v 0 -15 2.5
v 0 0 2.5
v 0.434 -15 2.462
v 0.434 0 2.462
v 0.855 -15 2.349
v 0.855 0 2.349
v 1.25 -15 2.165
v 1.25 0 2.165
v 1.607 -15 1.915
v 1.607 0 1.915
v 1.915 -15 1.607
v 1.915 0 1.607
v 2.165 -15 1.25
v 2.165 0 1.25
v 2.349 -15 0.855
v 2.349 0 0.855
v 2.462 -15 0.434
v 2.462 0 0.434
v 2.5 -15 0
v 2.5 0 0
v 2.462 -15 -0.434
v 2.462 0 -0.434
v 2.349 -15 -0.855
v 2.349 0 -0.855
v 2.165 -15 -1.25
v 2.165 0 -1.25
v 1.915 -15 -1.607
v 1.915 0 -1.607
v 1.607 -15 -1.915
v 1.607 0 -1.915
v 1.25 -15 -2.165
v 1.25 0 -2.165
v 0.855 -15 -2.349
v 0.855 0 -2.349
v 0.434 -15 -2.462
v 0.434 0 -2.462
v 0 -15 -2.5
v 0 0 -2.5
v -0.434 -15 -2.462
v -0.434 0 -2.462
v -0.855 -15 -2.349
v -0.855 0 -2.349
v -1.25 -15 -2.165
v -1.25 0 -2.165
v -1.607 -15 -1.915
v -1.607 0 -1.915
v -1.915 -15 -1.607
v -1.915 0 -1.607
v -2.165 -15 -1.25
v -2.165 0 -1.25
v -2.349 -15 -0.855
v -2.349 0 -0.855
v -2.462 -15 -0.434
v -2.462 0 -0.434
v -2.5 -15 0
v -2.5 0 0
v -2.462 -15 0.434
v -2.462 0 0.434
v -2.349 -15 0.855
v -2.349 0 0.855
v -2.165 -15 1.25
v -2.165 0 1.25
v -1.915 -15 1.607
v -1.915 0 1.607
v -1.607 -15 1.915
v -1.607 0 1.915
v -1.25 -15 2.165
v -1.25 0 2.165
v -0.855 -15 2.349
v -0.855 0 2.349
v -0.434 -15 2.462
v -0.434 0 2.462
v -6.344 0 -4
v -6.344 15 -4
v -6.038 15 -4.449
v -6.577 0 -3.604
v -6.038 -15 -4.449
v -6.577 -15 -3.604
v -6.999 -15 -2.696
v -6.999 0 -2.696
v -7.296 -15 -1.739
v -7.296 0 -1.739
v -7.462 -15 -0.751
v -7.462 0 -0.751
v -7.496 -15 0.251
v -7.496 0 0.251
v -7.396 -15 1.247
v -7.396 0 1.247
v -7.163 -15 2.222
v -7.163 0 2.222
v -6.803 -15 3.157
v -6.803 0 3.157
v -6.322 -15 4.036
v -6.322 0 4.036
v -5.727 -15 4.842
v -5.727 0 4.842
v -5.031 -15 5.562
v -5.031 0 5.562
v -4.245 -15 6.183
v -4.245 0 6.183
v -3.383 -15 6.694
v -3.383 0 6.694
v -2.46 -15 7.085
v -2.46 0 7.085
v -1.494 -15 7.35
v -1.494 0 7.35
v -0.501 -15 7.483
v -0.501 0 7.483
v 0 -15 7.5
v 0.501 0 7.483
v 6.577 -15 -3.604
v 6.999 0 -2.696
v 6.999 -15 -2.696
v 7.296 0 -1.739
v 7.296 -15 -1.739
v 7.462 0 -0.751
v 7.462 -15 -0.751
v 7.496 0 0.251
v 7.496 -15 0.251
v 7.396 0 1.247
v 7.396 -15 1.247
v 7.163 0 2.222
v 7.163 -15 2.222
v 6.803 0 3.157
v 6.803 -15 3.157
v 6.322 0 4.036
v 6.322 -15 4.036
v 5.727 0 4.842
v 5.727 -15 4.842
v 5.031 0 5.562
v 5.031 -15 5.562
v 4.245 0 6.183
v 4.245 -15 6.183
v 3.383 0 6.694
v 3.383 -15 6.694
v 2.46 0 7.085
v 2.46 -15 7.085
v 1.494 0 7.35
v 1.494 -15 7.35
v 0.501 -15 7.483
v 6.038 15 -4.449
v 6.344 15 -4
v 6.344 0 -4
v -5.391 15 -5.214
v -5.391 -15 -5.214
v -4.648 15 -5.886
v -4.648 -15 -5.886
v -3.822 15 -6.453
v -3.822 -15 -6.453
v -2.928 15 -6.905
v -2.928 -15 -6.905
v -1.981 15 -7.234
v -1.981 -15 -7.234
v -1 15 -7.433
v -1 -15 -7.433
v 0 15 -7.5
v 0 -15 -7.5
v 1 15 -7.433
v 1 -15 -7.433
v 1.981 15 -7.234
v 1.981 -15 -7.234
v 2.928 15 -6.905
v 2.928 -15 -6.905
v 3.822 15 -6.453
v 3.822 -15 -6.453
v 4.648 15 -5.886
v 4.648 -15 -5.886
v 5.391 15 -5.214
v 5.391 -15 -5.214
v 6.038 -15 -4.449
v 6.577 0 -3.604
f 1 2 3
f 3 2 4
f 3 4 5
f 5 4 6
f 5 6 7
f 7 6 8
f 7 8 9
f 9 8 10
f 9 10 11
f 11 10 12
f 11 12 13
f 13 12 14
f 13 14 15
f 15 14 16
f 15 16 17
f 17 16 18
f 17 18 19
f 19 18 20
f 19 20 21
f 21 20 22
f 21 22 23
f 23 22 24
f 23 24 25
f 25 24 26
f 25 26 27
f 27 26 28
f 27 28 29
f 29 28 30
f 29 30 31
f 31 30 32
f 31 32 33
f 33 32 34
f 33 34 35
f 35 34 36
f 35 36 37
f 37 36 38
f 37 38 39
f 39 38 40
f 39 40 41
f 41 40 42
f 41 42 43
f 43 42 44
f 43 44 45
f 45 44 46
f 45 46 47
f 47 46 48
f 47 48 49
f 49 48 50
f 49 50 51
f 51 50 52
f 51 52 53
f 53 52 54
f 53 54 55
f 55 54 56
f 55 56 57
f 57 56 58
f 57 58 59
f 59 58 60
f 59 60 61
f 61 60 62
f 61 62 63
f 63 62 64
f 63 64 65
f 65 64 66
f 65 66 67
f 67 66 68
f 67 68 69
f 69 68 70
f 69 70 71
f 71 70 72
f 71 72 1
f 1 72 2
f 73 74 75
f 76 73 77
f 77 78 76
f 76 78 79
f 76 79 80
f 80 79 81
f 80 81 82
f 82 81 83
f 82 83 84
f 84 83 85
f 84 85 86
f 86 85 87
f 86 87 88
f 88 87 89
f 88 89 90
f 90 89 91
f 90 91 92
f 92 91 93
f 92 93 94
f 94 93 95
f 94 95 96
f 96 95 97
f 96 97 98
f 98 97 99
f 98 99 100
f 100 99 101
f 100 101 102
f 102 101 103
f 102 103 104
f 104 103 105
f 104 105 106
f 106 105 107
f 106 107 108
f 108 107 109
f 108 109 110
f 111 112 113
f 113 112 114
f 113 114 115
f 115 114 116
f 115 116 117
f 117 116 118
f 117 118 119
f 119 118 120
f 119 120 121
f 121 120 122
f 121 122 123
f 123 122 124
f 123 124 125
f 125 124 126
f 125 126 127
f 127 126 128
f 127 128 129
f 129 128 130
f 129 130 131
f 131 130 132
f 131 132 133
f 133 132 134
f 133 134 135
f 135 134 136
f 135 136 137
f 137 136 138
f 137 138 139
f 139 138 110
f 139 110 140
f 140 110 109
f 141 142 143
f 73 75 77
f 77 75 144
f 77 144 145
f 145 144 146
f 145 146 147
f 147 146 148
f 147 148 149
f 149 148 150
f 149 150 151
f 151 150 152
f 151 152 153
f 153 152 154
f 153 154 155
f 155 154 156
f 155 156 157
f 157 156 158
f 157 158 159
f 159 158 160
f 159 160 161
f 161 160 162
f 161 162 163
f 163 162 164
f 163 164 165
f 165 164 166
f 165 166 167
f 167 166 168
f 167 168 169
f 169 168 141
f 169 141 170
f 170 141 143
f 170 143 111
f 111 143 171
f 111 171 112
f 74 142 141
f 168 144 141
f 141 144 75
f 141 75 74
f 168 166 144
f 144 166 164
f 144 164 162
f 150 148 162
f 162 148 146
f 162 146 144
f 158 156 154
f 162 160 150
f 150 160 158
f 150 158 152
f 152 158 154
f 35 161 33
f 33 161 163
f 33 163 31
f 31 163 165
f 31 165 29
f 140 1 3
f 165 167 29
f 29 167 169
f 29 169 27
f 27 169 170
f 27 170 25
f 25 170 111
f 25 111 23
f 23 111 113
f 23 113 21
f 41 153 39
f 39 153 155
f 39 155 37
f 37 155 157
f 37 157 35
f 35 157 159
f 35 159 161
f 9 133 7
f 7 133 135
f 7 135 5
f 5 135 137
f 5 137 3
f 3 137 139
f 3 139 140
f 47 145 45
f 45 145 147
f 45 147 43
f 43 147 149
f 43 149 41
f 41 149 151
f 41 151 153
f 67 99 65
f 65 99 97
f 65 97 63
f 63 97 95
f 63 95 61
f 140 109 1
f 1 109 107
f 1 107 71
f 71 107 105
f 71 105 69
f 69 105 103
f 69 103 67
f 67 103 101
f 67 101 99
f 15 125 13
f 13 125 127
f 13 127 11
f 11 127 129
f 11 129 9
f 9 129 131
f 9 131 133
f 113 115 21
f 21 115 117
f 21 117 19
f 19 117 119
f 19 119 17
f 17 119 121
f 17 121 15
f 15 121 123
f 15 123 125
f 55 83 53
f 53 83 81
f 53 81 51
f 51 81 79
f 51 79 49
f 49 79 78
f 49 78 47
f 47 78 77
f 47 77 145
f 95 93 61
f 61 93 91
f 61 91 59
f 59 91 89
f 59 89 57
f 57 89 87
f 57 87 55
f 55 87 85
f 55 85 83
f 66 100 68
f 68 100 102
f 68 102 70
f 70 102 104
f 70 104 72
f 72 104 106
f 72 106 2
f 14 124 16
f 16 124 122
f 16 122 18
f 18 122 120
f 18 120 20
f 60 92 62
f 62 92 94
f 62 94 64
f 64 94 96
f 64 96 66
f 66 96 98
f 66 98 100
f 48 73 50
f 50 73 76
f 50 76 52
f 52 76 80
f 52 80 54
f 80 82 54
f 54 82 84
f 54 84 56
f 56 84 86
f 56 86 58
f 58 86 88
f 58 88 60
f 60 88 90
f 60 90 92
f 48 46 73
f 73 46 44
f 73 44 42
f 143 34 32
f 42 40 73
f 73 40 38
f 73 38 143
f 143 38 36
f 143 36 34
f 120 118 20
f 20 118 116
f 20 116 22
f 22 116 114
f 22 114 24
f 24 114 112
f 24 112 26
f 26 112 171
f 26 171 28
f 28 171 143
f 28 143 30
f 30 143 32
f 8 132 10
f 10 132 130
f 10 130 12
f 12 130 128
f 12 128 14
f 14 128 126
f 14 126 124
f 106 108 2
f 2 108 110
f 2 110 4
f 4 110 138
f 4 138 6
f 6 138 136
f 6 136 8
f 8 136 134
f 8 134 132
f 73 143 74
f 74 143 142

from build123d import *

# Parameters (mm, degrees)
CROQUIS1_R              = 7.5
SALIENTE_EXTRUIR1_DEPTH = 15
CROQUIS3_R              = 2.5
CORTAR_EXTRUIR2_DEPTH   = 32.819805153
CORTAR_EXTRUIR1_DEPTH   = 15


with BuildPart() as part:
    # Croquis1 → Saliente-Extruir1 (new, symmetric)
    with BuildSketch(Plane(origin=(0, 0, 0), x_dir=(1, 0, 0), z_dir=(0, 1, 0))):
        with Locations(Location((0, 0, 0), (0, 0, 270))):
            Circle(CROQUIS1_R)
    extrude(amount=SALIENTE_EXTRUIR1_DEPTH, both=True)

    # Croquis3 → Cortar-Extruir2 (cut, through all)
    with BuildSketch(Plane(origin=(0, 15, 0), x_dir=(1, 0, 0), z_dir=(0, 1, 0))):
        with Locations(Location((0, 0, 0), (0, 0, 270))):
            Circle(CROQUIS3_R)
    extrude(amount=-CORTAR_EXTRUIR2_DEPTH, mode=Mode.SUBTRACT)

    # Croquis2 → Cortar-Extruir1 (cut)
    with BuildSketch(Plane(origin=(0, 15, 0), x_dir=(1, 0, 0), z_dir=(0, 1, 0))):
        with BuildLine():
            Line((-6.34428877, 4), (6.34428877, 4))
            ThreePointArc((6.34428877, 4), (0, -7.5), (-6.34428877, 4))
        make_face()
    extrude(amount=-CORTAR_EXTRUIR1_DEPTH, mode=Mode.SUBTRACT)


solid = part.part
